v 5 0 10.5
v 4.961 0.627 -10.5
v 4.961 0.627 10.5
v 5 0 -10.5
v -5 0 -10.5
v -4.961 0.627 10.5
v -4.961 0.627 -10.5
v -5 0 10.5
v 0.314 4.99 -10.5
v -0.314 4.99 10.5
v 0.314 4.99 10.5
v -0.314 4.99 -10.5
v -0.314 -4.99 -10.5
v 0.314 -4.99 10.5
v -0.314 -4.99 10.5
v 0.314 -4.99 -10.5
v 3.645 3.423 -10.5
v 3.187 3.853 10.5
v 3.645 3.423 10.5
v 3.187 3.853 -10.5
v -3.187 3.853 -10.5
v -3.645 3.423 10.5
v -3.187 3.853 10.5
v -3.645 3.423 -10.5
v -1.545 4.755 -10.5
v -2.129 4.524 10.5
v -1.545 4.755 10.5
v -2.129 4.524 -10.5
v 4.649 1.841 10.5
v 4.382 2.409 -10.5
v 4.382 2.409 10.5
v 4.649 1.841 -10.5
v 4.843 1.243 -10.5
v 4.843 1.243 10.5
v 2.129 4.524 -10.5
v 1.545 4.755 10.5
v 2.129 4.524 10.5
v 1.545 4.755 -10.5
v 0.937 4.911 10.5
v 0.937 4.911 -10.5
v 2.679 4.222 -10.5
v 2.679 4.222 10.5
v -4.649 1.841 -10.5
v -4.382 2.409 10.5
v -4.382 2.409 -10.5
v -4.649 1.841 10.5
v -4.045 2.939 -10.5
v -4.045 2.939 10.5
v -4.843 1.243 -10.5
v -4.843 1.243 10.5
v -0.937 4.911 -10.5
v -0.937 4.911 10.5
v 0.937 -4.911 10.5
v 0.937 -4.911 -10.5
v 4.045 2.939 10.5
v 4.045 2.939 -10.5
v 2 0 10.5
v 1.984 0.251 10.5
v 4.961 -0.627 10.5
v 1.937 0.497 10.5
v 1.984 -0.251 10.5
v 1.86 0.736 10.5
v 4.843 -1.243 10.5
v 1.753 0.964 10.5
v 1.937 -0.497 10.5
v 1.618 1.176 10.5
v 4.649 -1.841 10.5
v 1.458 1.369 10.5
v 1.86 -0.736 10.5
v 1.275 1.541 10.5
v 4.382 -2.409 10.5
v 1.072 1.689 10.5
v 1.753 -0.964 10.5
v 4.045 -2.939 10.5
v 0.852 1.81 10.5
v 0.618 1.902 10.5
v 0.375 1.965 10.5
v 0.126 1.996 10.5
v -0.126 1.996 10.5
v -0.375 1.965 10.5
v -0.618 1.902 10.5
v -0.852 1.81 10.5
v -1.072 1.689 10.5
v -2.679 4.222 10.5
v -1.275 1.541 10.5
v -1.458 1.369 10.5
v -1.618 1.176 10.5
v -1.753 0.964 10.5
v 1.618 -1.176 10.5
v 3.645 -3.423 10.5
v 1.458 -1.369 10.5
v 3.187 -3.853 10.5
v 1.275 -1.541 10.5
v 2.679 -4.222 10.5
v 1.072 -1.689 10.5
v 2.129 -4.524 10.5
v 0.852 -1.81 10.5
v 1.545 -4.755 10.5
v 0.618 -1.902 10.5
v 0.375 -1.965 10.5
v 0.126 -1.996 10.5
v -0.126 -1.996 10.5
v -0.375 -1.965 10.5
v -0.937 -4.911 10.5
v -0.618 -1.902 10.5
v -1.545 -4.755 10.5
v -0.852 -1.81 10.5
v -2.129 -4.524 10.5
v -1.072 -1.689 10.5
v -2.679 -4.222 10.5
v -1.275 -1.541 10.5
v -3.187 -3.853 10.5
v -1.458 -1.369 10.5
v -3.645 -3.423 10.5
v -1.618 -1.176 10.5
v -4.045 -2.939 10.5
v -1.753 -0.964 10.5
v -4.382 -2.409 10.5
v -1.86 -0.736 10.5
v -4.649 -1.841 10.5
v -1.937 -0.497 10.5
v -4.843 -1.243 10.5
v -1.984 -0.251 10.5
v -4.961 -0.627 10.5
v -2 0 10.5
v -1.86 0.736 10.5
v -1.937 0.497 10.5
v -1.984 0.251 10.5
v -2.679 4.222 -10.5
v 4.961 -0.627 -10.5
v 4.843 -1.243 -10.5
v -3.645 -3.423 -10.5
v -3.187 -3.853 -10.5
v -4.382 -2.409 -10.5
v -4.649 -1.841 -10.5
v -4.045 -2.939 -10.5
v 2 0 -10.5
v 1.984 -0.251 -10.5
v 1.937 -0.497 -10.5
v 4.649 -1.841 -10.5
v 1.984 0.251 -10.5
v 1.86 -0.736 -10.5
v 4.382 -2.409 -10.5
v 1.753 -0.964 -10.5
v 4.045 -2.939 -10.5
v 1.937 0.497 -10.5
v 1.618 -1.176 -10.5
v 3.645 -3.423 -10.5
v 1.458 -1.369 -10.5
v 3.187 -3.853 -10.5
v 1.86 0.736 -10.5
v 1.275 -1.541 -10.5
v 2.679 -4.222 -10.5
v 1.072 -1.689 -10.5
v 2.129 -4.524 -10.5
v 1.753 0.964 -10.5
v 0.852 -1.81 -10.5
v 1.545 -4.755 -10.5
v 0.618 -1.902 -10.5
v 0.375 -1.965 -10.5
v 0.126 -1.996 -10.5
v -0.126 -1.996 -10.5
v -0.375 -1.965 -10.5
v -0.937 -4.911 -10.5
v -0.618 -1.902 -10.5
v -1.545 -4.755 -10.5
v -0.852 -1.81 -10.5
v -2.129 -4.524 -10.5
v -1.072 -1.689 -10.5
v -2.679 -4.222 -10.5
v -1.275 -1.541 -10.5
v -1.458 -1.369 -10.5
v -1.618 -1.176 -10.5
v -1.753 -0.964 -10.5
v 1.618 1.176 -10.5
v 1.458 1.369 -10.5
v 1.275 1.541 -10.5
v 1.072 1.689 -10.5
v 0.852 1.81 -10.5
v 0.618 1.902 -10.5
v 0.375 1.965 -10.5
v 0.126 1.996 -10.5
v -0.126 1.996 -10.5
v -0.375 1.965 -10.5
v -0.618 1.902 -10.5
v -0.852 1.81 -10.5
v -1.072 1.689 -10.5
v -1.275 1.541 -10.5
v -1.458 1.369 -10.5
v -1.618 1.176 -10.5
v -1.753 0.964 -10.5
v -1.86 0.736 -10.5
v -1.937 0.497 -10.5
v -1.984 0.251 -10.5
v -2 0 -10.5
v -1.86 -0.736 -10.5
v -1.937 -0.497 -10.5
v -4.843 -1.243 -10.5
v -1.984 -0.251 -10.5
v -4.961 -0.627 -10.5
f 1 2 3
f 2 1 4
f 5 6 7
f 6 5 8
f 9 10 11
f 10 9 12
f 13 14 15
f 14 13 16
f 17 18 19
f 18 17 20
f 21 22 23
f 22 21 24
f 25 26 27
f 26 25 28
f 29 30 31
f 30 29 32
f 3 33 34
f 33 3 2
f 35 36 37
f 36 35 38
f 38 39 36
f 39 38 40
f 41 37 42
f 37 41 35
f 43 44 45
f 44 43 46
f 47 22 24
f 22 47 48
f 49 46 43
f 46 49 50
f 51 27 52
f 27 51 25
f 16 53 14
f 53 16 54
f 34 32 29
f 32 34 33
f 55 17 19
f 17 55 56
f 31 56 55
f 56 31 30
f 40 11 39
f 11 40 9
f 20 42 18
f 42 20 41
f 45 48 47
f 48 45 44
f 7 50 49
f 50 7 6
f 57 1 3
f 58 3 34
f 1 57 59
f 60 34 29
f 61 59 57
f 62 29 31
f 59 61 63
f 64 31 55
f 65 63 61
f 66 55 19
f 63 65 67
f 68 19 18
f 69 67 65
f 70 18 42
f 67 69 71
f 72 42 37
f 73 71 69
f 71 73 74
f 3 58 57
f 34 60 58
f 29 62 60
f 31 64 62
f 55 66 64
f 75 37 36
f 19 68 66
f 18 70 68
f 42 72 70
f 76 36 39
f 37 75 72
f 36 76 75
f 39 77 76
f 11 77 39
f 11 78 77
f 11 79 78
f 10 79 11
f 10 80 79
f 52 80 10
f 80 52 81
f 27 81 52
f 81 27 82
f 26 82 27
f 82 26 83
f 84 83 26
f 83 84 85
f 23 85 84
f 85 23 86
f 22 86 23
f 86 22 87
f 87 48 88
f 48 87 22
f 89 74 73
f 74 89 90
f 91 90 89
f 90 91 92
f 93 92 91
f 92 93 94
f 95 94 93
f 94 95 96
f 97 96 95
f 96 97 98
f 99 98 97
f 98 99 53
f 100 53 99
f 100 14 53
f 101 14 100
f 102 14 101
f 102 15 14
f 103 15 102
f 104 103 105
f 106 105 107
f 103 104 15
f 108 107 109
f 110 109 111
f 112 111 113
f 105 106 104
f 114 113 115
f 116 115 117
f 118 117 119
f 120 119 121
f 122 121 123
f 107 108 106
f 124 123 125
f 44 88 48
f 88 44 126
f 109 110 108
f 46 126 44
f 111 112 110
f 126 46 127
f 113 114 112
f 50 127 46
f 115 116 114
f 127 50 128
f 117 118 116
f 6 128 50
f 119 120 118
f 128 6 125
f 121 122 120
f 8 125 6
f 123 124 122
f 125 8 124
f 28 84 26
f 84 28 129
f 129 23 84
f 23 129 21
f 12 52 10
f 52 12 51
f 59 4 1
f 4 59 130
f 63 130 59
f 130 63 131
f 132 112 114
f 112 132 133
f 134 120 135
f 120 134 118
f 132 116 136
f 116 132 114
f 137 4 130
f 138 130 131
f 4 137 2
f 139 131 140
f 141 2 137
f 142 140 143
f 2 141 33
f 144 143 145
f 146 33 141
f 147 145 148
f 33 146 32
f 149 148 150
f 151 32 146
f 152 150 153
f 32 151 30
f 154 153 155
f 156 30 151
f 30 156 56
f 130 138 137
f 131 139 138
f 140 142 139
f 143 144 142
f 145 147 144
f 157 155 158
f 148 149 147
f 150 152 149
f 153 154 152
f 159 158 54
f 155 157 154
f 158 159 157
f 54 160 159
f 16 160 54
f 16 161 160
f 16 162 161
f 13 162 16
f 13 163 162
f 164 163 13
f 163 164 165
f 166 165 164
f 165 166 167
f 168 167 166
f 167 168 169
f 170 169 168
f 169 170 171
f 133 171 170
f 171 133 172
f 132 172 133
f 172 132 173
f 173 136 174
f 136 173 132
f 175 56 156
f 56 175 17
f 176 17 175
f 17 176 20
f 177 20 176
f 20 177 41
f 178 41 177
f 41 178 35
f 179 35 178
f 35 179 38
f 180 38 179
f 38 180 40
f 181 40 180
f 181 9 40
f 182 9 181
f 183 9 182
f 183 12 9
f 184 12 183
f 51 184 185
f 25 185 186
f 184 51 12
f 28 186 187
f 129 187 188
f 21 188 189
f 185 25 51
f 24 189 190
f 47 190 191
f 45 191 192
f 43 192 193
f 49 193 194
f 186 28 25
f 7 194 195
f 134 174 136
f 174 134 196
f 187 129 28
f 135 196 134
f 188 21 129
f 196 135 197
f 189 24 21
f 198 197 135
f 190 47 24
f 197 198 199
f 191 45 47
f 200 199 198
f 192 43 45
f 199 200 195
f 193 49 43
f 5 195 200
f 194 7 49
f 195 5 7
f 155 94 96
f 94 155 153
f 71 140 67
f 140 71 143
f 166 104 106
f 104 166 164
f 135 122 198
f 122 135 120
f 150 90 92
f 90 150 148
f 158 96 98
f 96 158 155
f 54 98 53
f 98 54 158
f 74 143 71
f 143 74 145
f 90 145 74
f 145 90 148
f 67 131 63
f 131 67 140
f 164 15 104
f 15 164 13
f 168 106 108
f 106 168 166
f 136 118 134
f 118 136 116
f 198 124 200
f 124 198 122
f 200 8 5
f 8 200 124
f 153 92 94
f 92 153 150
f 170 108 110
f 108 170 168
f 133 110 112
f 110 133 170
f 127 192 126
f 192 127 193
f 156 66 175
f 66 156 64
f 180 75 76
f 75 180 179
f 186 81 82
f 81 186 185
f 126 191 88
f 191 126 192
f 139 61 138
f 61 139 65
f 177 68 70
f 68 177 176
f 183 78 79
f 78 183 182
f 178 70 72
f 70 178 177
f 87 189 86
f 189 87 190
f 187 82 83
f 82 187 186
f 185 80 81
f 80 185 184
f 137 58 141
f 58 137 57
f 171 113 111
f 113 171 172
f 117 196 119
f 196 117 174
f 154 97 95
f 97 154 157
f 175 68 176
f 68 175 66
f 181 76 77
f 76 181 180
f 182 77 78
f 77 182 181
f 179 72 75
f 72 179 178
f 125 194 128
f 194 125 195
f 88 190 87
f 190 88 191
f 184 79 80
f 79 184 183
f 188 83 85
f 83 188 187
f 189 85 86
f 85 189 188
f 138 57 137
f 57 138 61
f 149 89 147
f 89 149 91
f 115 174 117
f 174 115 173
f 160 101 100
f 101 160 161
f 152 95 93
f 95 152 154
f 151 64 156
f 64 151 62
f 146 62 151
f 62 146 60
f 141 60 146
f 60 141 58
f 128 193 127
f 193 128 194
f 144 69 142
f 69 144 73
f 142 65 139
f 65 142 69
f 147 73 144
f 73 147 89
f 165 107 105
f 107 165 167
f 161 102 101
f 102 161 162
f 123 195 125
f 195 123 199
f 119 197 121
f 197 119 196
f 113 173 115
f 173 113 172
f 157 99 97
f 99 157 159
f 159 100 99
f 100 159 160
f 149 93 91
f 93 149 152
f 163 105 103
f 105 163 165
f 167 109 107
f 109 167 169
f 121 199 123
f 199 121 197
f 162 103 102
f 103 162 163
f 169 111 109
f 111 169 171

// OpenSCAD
$fn = 50;


difference() {
	union() {
		translate(v = [0, 0, -10.5000000000]) {
			cylinder(h = 21, r = 5.0000000000);
		}
	}
	union() {
		translate(v = [0, 0, -100.0000000000]) {
			cylinder(h = 200, r = 2);
		}
	}
}
